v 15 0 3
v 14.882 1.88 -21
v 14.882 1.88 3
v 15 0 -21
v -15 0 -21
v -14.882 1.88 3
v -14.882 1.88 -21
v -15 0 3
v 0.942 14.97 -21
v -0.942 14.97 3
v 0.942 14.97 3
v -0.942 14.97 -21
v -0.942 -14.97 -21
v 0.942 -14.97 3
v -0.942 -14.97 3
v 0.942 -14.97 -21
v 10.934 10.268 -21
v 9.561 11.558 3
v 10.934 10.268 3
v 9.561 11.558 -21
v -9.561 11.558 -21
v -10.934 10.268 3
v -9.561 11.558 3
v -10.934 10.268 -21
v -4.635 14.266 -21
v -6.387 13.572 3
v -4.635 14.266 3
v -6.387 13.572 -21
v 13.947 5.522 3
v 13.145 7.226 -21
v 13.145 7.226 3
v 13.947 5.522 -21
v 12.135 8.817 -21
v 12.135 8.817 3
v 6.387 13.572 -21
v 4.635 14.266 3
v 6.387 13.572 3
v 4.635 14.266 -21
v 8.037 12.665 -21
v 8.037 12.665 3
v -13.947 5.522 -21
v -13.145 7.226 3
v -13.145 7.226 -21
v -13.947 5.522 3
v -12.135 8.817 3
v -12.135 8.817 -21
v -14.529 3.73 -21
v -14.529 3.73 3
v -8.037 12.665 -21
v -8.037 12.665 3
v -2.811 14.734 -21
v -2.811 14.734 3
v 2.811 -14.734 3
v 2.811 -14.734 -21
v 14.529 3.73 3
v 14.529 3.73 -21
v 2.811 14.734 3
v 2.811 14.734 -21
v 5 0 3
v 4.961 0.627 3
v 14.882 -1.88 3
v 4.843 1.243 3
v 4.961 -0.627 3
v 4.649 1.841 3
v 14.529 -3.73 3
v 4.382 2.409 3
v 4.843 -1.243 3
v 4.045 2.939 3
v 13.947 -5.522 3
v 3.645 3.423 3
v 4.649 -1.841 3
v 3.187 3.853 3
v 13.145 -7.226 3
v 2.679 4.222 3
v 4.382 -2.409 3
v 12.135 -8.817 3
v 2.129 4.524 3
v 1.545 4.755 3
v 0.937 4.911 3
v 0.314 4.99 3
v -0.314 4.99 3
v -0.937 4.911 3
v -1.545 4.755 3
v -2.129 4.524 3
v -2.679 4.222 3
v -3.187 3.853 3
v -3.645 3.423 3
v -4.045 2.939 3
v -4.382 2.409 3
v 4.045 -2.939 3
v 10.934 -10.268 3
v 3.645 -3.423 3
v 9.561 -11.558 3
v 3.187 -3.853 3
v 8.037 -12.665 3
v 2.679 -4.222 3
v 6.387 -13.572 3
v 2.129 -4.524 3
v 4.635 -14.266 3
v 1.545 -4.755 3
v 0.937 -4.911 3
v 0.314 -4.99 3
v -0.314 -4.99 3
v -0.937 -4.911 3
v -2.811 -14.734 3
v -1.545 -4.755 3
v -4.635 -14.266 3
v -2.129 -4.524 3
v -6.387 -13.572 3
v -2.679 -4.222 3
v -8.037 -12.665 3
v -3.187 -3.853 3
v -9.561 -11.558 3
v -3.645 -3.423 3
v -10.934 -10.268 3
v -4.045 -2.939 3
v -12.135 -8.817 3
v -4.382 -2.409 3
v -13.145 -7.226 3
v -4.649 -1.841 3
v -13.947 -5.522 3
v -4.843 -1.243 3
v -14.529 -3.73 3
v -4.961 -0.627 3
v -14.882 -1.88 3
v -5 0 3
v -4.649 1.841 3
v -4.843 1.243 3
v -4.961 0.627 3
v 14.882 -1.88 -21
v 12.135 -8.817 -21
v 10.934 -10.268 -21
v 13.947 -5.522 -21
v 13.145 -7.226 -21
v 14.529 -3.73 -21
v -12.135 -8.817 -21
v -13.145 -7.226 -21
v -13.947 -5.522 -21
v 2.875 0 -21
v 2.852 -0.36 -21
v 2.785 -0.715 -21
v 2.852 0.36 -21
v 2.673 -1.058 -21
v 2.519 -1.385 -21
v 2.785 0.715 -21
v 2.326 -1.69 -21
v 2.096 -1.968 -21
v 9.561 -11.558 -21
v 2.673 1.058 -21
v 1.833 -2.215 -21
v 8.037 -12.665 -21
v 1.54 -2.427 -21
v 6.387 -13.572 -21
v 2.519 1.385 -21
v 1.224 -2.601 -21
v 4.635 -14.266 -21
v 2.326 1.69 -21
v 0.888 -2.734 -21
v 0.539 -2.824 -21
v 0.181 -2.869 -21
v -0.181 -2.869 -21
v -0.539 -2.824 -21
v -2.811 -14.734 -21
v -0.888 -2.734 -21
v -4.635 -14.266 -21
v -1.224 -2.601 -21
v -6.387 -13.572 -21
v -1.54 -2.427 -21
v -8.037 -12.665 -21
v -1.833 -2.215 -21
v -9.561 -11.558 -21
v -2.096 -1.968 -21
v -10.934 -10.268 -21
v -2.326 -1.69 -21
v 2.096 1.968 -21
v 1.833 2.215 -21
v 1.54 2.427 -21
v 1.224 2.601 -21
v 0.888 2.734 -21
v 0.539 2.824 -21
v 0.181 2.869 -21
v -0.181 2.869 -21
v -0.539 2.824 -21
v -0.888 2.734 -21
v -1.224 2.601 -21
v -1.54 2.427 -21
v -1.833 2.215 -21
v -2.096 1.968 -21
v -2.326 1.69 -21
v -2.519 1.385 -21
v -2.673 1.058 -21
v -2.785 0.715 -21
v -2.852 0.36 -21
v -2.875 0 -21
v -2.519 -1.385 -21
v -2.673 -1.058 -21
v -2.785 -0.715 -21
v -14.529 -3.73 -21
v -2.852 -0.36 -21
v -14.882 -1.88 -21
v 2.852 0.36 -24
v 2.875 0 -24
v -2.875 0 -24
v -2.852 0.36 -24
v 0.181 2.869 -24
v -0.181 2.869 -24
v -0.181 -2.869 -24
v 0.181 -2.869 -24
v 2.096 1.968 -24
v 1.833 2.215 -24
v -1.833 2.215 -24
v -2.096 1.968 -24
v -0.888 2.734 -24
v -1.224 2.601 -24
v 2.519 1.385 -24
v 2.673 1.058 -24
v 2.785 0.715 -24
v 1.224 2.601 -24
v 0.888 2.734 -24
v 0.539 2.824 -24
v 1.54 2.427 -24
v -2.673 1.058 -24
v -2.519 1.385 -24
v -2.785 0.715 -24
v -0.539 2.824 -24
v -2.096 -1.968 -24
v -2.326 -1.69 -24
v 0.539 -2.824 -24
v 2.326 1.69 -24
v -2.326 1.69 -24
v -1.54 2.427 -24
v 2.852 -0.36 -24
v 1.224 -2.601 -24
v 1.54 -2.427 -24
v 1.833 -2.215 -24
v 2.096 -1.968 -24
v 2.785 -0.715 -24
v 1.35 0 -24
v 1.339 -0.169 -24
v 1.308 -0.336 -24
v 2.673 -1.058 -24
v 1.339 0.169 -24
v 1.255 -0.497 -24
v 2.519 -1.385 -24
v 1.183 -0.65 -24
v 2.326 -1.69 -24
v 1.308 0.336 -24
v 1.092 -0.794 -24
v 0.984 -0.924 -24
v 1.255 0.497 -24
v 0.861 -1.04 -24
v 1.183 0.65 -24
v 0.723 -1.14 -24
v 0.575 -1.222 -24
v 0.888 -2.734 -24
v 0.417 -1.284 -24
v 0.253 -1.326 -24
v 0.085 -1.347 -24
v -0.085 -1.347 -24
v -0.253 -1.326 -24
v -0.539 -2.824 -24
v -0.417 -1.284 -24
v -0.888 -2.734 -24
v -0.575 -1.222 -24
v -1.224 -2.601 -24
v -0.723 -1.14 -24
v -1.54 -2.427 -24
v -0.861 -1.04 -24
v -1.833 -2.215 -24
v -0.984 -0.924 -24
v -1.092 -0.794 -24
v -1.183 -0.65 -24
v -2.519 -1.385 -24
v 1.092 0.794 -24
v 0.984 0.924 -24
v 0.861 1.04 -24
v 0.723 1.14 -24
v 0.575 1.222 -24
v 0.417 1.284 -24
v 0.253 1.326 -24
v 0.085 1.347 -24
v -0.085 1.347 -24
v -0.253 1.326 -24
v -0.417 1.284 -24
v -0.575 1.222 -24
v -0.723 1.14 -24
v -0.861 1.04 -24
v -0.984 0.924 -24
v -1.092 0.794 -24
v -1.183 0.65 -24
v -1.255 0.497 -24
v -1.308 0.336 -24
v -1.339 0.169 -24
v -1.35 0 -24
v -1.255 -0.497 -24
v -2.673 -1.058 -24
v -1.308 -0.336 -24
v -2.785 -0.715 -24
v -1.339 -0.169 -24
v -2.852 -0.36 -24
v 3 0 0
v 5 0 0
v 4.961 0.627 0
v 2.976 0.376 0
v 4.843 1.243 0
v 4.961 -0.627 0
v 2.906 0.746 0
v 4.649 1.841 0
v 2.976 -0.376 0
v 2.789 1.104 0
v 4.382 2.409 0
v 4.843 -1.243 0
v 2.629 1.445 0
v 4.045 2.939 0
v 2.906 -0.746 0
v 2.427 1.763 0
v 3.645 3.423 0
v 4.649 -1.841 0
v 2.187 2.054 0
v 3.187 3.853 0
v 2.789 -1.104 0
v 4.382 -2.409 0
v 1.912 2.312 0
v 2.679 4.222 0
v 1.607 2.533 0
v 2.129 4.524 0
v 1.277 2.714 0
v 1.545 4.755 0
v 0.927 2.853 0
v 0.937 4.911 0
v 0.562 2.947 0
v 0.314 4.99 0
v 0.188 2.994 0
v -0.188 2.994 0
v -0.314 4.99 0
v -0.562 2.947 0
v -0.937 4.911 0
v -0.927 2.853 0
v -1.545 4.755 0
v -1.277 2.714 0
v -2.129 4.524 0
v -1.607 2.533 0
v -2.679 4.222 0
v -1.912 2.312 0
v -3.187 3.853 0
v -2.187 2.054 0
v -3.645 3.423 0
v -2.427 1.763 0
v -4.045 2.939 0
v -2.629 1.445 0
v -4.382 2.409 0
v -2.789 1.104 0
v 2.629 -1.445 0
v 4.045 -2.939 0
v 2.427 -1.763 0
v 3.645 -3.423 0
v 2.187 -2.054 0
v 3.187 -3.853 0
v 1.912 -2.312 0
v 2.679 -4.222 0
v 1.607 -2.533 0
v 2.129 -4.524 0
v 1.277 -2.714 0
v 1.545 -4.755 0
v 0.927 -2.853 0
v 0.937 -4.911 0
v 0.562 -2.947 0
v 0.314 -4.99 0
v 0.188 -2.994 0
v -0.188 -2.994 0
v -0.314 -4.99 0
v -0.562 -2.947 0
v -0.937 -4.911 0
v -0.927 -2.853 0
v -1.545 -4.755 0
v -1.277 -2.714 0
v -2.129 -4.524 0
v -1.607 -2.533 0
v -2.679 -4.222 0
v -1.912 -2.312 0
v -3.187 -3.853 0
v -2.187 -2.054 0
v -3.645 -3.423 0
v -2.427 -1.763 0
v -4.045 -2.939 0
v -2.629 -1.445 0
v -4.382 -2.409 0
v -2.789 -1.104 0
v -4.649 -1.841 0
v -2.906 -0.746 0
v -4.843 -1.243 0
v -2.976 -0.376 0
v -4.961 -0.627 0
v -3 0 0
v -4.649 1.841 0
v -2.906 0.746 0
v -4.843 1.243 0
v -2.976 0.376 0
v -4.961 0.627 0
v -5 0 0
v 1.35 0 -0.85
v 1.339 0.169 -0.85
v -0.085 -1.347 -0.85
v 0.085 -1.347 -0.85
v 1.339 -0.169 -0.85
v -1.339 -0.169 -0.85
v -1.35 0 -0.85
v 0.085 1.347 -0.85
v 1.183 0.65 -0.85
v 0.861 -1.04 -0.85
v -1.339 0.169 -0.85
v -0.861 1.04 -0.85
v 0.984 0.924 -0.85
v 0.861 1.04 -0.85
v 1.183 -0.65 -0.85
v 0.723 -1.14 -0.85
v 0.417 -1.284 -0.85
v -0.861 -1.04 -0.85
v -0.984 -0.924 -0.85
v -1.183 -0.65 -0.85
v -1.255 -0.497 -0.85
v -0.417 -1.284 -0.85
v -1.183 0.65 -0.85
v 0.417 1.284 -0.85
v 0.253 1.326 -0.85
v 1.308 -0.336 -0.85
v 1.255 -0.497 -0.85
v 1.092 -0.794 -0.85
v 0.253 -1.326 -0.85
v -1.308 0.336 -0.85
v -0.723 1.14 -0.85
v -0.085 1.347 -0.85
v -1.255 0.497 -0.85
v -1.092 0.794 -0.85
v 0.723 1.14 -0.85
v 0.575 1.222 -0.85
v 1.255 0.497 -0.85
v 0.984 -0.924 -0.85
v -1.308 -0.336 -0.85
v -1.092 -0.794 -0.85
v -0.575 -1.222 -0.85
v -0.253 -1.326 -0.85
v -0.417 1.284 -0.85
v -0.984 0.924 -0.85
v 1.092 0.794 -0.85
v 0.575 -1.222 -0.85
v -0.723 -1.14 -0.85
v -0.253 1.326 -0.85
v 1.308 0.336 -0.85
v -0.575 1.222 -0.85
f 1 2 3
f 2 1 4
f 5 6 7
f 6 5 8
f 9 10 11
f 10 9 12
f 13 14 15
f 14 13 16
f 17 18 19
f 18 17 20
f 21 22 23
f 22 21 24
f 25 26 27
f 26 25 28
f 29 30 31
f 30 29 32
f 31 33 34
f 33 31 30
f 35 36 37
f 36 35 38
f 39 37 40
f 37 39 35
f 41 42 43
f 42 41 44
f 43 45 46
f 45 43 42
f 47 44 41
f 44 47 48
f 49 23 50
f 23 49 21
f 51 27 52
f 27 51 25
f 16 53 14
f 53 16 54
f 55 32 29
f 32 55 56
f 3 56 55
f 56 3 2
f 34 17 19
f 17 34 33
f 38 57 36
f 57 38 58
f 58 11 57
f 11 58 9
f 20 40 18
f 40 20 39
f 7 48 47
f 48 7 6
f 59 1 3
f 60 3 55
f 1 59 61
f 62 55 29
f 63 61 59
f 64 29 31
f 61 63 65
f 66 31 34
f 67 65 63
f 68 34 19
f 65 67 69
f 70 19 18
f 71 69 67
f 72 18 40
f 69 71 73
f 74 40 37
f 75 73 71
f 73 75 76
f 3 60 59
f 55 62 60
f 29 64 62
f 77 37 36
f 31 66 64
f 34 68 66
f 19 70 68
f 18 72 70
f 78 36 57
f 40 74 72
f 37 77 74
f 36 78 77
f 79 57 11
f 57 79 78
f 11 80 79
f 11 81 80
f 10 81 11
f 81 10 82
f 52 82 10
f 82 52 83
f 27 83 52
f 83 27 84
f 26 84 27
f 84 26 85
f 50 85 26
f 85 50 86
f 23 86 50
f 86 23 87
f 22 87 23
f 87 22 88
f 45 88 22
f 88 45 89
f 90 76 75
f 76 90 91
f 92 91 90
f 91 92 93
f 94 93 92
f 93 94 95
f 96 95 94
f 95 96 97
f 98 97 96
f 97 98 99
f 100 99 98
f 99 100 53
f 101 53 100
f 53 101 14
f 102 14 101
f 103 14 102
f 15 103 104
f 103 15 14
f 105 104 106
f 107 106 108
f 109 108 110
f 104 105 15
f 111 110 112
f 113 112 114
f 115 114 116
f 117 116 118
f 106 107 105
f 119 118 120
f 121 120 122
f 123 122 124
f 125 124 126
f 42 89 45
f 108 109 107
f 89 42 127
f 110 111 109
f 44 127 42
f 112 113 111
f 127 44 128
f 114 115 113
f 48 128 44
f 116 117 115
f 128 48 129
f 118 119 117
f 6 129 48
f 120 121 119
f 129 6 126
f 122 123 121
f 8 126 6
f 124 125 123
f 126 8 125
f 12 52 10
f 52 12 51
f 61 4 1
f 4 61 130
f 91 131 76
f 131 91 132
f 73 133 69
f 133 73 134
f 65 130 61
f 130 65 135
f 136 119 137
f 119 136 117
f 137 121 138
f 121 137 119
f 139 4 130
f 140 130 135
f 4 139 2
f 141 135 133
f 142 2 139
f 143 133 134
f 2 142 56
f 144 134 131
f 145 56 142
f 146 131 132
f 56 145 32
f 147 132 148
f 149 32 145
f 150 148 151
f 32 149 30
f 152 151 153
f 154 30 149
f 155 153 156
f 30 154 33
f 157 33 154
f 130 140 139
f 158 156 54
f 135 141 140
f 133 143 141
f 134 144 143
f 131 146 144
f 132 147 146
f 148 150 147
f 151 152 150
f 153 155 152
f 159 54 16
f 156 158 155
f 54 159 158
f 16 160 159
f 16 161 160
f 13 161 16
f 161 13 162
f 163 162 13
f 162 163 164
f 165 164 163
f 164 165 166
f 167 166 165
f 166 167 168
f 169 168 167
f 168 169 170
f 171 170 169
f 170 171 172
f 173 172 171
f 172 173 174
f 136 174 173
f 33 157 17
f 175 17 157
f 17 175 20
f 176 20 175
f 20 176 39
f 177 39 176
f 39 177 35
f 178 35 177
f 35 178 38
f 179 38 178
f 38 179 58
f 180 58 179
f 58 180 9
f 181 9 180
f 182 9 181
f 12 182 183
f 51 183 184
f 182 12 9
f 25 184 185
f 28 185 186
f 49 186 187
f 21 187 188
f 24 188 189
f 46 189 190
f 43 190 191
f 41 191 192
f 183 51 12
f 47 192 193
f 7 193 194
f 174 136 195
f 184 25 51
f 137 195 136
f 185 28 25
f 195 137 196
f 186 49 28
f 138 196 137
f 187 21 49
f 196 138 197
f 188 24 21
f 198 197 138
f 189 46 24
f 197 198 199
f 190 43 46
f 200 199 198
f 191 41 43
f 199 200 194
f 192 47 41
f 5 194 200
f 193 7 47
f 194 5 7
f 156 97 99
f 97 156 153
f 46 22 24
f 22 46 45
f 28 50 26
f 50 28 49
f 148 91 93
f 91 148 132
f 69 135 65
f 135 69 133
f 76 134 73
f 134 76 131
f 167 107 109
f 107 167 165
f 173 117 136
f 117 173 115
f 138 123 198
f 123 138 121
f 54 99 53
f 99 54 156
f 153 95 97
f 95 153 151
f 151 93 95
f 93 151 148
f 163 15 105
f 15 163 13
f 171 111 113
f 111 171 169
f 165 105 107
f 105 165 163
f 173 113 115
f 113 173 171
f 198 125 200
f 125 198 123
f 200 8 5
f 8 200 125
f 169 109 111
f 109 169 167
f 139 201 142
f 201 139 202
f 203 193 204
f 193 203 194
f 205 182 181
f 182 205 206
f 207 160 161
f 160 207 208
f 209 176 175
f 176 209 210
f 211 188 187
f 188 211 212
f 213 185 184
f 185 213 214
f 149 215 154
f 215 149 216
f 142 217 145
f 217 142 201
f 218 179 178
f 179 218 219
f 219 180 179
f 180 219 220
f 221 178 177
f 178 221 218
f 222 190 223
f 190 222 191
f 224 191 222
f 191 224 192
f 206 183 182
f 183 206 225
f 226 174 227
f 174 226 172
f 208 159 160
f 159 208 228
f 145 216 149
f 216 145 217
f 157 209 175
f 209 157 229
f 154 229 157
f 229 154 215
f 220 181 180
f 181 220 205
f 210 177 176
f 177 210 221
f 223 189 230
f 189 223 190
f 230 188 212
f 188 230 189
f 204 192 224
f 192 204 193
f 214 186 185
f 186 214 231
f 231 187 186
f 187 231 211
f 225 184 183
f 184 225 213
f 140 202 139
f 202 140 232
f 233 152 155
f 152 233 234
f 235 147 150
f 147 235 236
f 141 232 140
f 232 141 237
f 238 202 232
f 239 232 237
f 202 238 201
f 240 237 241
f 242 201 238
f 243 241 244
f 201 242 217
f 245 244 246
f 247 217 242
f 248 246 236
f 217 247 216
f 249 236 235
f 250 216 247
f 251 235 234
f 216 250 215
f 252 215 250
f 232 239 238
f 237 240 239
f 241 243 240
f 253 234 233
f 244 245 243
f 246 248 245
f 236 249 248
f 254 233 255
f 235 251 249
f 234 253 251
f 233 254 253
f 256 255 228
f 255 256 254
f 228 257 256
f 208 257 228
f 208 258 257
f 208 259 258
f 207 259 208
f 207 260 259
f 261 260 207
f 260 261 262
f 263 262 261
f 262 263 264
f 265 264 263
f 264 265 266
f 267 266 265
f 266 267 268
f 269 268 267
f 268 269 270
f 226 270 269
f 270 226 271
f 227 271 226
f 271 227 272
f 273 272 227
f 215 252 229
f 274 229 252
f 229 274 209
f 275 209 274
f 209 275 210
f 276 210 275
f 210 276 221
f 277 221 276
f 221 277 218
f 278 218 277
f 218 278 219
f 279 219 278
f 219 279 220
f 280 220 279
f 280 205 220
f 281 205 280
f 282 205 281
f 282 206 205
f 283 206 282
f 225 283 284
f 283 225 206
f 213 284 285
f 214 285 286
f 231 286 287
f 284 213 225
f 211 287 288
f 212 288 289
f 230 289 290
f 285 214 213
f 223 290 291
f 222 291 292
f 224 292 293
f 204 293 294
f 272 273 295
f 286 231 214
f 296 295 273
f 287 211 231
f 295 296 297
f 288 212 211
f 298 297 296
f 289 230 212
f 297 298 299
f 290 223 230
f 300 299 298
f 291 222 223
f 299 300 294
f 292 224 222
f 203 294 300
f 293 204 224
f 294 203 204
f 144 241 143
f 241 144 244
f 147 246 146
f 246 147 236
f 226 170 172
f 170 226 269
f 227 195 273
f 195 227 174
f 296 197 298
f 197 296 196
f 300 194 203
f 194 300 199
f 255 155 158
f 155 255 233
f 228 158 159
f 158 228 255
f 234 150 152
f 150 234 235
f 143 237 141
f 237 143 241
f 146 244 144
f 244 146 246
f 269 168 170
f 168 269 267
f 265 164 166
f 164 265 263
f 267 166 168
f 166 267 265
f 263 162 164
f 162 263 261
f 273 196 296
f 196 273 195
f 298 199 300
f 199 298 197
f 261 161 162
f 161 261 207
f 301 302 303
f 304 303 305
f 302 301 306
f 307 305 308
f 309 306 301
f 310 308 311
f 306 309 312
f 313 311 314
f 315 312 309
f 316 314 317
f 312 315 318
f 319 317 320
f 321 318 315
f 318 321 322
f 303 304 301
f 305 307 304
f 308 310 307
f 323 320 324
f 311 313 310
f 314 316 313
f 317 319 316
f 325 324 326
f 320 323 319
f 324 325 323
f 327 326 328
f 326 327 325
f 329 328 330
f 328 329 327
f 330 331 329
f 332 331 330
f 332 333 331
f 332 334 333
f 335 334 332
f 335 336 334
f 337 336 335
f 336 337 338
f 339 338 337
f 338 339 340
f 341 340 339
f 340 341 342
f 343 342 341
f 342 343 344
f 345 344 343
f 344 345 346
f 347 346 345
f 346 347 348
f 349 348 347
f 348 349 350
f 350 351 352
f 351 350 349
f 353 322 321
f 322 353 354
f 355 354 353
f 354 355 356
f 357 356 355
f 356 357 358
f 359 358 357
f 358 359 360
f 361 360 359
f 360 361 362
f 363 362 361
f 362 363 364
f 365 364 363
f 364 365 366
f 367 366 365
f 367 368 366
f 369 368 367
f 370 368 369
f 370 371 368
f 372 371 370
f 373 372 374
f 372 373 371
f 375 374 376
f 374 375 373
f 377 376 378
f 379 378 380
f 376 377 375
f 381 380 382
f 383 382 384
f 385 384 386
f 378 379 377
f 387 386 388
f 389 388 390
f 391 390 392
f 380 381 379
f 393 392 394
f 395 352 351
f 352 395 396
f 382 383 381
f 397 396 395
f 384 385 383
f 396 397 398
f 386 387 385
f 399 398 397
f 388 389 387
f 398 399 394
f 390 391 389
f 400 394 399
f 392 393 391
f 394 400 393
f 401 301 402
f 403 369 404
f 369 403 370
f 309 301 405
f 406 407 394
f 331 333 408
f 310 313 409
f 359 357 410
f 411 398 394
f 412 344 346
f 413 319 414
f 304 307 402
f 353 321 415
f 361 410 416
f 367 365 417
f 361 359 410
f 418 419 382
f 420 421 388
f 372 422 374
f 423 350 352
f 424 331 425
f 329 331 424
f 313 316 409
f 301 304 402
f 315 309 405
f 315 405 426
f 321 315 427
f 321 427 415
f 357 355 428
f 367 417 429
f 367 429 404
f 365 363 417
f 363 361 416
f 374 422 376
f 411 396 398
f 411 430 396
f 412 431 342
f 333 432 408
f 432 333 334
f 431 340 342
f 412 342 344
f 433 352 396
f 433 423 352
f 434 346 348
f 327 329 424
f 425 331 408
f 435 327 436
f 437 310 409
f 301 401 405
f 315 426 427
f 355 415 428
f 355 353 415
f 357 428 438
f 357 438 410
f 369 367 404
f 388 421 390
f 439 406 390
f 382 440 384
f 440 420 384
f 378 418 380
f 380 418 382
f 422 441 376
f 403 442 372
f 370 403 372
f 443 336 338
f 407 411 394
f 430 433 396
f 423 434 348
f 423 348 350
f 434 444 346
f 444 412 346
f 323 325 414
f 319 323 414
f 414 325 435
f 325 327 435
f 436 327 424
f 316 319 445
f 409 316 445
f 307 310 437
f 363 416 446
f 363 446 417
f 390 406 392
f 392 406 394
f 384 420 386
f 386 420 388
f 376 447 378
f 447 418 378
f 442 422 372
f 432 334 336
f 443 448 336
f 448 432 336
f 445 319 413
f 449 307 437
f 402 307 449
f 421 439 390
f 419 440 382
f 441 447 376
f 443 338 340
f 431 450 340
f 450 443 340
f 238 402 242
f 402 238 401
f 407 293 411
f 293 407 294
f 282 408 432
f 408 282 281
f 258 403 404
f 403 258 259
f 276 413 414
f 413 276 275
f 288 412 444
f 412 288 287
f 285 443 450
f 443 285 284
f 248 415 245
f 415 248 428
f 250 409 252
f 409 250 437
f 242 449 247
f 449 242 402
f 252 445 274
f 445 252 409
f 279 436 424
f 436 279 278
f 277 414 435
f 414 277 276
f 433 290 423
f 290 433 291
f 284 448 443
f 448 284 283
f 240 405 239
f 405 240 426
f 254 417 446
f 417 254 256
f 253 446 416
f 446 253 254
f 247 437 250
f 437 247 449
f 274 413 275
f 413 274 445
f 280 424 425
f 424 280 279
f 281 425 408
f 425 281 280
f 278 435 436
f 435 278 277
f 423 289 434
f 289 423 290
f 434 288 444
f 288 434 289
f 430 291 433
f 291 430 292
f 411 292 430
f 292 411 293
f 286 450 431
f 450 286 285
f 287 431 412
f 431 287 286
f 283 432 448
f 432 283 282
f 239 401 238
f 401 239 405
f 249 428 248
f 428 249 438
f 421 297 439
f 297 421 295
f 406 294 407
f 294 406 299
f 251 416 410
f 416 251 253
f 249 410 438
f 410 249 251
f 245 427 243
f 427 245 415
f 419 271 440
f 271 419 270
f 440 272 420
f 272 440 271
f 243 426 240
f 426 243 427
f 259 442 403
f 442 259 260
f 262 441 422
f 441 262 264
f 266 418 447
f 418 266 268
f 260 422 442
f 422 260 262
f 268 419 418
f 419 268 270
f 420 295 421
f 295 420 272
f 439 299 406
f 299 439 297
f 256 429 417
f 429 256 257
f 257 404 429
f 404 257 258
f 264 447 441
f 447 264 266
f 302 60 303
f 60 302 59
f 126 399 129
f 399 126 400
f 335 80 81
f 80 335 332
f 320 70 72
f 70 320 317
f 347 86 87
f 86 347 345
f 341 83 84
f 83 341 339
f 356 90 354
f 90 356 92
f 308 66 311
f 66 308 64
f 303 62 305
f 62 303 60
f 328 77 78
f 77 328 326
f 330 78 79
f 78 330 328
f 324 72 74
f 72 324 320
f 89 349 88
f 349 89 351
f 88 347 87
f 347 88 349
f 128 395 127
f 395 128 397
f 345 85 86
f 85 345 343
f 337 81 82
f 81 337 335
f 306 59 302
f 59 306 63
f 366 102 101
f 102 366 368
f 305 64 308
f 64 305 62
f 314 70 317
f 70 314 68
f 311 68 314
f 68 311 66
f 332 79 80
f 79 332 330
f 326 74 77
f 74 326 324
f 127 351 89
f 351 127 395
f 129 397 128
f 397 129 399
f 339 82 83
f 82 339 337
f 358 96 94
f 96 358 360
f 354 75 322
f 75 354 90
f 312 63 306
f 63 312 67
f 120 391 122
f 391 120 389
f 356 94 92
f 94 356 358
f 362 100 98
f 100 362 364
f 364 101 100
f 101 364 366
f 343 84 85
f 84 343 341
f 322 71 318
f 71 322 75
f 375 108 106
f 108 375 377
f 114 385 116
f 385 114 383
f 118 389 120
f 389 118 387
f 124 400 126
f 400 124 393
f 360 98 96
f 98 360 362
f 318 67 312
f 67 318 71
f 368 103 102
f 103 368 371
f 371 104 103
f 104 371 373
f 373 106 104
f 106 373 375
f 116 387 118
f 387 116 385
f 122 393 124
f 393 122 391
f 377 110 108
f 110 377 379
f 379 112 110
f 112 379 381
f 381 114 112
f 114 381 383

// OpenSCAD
$fn = 50;


difference() {
	union() {
		translate(v = [0, 0, -21.0000000000]) {
			cylinder(h = 24, r = 15.0000000000);
		}
		#translate(v = [0, 0, -24.0000000000]) {
			cylinder(h = 24, r = 2.8750000000);
		}
	}
	union() {
		translate(v = [0, 0, 0]) {
			rotate(a = [0, 0, 0]) {
				difference() {
					union() {
						translate(v = [0, 0, -24.0000000000]) {
							cylinder(h = 24, r = 1.0000000000);
						}
						translate(v = [0, 0, -0.8500000000]) {
							cylinder(h = 0.8500000000, r1 = 1.3500000000, r2 = 3.0000000000);
						}
						translate(v = [0, 0, -24.0000000000]) {
							cylinder(h = 24, r = 1.3500000000);
						}
						translate(v = [0, 0, -24.0000000000]) {
							cylinder(h = 24, r = 1.0000000000);
						}
					}
					union();
				}
			}
		}
		#cylinder(h = 3, r = 5.0000000000);
	}
}
